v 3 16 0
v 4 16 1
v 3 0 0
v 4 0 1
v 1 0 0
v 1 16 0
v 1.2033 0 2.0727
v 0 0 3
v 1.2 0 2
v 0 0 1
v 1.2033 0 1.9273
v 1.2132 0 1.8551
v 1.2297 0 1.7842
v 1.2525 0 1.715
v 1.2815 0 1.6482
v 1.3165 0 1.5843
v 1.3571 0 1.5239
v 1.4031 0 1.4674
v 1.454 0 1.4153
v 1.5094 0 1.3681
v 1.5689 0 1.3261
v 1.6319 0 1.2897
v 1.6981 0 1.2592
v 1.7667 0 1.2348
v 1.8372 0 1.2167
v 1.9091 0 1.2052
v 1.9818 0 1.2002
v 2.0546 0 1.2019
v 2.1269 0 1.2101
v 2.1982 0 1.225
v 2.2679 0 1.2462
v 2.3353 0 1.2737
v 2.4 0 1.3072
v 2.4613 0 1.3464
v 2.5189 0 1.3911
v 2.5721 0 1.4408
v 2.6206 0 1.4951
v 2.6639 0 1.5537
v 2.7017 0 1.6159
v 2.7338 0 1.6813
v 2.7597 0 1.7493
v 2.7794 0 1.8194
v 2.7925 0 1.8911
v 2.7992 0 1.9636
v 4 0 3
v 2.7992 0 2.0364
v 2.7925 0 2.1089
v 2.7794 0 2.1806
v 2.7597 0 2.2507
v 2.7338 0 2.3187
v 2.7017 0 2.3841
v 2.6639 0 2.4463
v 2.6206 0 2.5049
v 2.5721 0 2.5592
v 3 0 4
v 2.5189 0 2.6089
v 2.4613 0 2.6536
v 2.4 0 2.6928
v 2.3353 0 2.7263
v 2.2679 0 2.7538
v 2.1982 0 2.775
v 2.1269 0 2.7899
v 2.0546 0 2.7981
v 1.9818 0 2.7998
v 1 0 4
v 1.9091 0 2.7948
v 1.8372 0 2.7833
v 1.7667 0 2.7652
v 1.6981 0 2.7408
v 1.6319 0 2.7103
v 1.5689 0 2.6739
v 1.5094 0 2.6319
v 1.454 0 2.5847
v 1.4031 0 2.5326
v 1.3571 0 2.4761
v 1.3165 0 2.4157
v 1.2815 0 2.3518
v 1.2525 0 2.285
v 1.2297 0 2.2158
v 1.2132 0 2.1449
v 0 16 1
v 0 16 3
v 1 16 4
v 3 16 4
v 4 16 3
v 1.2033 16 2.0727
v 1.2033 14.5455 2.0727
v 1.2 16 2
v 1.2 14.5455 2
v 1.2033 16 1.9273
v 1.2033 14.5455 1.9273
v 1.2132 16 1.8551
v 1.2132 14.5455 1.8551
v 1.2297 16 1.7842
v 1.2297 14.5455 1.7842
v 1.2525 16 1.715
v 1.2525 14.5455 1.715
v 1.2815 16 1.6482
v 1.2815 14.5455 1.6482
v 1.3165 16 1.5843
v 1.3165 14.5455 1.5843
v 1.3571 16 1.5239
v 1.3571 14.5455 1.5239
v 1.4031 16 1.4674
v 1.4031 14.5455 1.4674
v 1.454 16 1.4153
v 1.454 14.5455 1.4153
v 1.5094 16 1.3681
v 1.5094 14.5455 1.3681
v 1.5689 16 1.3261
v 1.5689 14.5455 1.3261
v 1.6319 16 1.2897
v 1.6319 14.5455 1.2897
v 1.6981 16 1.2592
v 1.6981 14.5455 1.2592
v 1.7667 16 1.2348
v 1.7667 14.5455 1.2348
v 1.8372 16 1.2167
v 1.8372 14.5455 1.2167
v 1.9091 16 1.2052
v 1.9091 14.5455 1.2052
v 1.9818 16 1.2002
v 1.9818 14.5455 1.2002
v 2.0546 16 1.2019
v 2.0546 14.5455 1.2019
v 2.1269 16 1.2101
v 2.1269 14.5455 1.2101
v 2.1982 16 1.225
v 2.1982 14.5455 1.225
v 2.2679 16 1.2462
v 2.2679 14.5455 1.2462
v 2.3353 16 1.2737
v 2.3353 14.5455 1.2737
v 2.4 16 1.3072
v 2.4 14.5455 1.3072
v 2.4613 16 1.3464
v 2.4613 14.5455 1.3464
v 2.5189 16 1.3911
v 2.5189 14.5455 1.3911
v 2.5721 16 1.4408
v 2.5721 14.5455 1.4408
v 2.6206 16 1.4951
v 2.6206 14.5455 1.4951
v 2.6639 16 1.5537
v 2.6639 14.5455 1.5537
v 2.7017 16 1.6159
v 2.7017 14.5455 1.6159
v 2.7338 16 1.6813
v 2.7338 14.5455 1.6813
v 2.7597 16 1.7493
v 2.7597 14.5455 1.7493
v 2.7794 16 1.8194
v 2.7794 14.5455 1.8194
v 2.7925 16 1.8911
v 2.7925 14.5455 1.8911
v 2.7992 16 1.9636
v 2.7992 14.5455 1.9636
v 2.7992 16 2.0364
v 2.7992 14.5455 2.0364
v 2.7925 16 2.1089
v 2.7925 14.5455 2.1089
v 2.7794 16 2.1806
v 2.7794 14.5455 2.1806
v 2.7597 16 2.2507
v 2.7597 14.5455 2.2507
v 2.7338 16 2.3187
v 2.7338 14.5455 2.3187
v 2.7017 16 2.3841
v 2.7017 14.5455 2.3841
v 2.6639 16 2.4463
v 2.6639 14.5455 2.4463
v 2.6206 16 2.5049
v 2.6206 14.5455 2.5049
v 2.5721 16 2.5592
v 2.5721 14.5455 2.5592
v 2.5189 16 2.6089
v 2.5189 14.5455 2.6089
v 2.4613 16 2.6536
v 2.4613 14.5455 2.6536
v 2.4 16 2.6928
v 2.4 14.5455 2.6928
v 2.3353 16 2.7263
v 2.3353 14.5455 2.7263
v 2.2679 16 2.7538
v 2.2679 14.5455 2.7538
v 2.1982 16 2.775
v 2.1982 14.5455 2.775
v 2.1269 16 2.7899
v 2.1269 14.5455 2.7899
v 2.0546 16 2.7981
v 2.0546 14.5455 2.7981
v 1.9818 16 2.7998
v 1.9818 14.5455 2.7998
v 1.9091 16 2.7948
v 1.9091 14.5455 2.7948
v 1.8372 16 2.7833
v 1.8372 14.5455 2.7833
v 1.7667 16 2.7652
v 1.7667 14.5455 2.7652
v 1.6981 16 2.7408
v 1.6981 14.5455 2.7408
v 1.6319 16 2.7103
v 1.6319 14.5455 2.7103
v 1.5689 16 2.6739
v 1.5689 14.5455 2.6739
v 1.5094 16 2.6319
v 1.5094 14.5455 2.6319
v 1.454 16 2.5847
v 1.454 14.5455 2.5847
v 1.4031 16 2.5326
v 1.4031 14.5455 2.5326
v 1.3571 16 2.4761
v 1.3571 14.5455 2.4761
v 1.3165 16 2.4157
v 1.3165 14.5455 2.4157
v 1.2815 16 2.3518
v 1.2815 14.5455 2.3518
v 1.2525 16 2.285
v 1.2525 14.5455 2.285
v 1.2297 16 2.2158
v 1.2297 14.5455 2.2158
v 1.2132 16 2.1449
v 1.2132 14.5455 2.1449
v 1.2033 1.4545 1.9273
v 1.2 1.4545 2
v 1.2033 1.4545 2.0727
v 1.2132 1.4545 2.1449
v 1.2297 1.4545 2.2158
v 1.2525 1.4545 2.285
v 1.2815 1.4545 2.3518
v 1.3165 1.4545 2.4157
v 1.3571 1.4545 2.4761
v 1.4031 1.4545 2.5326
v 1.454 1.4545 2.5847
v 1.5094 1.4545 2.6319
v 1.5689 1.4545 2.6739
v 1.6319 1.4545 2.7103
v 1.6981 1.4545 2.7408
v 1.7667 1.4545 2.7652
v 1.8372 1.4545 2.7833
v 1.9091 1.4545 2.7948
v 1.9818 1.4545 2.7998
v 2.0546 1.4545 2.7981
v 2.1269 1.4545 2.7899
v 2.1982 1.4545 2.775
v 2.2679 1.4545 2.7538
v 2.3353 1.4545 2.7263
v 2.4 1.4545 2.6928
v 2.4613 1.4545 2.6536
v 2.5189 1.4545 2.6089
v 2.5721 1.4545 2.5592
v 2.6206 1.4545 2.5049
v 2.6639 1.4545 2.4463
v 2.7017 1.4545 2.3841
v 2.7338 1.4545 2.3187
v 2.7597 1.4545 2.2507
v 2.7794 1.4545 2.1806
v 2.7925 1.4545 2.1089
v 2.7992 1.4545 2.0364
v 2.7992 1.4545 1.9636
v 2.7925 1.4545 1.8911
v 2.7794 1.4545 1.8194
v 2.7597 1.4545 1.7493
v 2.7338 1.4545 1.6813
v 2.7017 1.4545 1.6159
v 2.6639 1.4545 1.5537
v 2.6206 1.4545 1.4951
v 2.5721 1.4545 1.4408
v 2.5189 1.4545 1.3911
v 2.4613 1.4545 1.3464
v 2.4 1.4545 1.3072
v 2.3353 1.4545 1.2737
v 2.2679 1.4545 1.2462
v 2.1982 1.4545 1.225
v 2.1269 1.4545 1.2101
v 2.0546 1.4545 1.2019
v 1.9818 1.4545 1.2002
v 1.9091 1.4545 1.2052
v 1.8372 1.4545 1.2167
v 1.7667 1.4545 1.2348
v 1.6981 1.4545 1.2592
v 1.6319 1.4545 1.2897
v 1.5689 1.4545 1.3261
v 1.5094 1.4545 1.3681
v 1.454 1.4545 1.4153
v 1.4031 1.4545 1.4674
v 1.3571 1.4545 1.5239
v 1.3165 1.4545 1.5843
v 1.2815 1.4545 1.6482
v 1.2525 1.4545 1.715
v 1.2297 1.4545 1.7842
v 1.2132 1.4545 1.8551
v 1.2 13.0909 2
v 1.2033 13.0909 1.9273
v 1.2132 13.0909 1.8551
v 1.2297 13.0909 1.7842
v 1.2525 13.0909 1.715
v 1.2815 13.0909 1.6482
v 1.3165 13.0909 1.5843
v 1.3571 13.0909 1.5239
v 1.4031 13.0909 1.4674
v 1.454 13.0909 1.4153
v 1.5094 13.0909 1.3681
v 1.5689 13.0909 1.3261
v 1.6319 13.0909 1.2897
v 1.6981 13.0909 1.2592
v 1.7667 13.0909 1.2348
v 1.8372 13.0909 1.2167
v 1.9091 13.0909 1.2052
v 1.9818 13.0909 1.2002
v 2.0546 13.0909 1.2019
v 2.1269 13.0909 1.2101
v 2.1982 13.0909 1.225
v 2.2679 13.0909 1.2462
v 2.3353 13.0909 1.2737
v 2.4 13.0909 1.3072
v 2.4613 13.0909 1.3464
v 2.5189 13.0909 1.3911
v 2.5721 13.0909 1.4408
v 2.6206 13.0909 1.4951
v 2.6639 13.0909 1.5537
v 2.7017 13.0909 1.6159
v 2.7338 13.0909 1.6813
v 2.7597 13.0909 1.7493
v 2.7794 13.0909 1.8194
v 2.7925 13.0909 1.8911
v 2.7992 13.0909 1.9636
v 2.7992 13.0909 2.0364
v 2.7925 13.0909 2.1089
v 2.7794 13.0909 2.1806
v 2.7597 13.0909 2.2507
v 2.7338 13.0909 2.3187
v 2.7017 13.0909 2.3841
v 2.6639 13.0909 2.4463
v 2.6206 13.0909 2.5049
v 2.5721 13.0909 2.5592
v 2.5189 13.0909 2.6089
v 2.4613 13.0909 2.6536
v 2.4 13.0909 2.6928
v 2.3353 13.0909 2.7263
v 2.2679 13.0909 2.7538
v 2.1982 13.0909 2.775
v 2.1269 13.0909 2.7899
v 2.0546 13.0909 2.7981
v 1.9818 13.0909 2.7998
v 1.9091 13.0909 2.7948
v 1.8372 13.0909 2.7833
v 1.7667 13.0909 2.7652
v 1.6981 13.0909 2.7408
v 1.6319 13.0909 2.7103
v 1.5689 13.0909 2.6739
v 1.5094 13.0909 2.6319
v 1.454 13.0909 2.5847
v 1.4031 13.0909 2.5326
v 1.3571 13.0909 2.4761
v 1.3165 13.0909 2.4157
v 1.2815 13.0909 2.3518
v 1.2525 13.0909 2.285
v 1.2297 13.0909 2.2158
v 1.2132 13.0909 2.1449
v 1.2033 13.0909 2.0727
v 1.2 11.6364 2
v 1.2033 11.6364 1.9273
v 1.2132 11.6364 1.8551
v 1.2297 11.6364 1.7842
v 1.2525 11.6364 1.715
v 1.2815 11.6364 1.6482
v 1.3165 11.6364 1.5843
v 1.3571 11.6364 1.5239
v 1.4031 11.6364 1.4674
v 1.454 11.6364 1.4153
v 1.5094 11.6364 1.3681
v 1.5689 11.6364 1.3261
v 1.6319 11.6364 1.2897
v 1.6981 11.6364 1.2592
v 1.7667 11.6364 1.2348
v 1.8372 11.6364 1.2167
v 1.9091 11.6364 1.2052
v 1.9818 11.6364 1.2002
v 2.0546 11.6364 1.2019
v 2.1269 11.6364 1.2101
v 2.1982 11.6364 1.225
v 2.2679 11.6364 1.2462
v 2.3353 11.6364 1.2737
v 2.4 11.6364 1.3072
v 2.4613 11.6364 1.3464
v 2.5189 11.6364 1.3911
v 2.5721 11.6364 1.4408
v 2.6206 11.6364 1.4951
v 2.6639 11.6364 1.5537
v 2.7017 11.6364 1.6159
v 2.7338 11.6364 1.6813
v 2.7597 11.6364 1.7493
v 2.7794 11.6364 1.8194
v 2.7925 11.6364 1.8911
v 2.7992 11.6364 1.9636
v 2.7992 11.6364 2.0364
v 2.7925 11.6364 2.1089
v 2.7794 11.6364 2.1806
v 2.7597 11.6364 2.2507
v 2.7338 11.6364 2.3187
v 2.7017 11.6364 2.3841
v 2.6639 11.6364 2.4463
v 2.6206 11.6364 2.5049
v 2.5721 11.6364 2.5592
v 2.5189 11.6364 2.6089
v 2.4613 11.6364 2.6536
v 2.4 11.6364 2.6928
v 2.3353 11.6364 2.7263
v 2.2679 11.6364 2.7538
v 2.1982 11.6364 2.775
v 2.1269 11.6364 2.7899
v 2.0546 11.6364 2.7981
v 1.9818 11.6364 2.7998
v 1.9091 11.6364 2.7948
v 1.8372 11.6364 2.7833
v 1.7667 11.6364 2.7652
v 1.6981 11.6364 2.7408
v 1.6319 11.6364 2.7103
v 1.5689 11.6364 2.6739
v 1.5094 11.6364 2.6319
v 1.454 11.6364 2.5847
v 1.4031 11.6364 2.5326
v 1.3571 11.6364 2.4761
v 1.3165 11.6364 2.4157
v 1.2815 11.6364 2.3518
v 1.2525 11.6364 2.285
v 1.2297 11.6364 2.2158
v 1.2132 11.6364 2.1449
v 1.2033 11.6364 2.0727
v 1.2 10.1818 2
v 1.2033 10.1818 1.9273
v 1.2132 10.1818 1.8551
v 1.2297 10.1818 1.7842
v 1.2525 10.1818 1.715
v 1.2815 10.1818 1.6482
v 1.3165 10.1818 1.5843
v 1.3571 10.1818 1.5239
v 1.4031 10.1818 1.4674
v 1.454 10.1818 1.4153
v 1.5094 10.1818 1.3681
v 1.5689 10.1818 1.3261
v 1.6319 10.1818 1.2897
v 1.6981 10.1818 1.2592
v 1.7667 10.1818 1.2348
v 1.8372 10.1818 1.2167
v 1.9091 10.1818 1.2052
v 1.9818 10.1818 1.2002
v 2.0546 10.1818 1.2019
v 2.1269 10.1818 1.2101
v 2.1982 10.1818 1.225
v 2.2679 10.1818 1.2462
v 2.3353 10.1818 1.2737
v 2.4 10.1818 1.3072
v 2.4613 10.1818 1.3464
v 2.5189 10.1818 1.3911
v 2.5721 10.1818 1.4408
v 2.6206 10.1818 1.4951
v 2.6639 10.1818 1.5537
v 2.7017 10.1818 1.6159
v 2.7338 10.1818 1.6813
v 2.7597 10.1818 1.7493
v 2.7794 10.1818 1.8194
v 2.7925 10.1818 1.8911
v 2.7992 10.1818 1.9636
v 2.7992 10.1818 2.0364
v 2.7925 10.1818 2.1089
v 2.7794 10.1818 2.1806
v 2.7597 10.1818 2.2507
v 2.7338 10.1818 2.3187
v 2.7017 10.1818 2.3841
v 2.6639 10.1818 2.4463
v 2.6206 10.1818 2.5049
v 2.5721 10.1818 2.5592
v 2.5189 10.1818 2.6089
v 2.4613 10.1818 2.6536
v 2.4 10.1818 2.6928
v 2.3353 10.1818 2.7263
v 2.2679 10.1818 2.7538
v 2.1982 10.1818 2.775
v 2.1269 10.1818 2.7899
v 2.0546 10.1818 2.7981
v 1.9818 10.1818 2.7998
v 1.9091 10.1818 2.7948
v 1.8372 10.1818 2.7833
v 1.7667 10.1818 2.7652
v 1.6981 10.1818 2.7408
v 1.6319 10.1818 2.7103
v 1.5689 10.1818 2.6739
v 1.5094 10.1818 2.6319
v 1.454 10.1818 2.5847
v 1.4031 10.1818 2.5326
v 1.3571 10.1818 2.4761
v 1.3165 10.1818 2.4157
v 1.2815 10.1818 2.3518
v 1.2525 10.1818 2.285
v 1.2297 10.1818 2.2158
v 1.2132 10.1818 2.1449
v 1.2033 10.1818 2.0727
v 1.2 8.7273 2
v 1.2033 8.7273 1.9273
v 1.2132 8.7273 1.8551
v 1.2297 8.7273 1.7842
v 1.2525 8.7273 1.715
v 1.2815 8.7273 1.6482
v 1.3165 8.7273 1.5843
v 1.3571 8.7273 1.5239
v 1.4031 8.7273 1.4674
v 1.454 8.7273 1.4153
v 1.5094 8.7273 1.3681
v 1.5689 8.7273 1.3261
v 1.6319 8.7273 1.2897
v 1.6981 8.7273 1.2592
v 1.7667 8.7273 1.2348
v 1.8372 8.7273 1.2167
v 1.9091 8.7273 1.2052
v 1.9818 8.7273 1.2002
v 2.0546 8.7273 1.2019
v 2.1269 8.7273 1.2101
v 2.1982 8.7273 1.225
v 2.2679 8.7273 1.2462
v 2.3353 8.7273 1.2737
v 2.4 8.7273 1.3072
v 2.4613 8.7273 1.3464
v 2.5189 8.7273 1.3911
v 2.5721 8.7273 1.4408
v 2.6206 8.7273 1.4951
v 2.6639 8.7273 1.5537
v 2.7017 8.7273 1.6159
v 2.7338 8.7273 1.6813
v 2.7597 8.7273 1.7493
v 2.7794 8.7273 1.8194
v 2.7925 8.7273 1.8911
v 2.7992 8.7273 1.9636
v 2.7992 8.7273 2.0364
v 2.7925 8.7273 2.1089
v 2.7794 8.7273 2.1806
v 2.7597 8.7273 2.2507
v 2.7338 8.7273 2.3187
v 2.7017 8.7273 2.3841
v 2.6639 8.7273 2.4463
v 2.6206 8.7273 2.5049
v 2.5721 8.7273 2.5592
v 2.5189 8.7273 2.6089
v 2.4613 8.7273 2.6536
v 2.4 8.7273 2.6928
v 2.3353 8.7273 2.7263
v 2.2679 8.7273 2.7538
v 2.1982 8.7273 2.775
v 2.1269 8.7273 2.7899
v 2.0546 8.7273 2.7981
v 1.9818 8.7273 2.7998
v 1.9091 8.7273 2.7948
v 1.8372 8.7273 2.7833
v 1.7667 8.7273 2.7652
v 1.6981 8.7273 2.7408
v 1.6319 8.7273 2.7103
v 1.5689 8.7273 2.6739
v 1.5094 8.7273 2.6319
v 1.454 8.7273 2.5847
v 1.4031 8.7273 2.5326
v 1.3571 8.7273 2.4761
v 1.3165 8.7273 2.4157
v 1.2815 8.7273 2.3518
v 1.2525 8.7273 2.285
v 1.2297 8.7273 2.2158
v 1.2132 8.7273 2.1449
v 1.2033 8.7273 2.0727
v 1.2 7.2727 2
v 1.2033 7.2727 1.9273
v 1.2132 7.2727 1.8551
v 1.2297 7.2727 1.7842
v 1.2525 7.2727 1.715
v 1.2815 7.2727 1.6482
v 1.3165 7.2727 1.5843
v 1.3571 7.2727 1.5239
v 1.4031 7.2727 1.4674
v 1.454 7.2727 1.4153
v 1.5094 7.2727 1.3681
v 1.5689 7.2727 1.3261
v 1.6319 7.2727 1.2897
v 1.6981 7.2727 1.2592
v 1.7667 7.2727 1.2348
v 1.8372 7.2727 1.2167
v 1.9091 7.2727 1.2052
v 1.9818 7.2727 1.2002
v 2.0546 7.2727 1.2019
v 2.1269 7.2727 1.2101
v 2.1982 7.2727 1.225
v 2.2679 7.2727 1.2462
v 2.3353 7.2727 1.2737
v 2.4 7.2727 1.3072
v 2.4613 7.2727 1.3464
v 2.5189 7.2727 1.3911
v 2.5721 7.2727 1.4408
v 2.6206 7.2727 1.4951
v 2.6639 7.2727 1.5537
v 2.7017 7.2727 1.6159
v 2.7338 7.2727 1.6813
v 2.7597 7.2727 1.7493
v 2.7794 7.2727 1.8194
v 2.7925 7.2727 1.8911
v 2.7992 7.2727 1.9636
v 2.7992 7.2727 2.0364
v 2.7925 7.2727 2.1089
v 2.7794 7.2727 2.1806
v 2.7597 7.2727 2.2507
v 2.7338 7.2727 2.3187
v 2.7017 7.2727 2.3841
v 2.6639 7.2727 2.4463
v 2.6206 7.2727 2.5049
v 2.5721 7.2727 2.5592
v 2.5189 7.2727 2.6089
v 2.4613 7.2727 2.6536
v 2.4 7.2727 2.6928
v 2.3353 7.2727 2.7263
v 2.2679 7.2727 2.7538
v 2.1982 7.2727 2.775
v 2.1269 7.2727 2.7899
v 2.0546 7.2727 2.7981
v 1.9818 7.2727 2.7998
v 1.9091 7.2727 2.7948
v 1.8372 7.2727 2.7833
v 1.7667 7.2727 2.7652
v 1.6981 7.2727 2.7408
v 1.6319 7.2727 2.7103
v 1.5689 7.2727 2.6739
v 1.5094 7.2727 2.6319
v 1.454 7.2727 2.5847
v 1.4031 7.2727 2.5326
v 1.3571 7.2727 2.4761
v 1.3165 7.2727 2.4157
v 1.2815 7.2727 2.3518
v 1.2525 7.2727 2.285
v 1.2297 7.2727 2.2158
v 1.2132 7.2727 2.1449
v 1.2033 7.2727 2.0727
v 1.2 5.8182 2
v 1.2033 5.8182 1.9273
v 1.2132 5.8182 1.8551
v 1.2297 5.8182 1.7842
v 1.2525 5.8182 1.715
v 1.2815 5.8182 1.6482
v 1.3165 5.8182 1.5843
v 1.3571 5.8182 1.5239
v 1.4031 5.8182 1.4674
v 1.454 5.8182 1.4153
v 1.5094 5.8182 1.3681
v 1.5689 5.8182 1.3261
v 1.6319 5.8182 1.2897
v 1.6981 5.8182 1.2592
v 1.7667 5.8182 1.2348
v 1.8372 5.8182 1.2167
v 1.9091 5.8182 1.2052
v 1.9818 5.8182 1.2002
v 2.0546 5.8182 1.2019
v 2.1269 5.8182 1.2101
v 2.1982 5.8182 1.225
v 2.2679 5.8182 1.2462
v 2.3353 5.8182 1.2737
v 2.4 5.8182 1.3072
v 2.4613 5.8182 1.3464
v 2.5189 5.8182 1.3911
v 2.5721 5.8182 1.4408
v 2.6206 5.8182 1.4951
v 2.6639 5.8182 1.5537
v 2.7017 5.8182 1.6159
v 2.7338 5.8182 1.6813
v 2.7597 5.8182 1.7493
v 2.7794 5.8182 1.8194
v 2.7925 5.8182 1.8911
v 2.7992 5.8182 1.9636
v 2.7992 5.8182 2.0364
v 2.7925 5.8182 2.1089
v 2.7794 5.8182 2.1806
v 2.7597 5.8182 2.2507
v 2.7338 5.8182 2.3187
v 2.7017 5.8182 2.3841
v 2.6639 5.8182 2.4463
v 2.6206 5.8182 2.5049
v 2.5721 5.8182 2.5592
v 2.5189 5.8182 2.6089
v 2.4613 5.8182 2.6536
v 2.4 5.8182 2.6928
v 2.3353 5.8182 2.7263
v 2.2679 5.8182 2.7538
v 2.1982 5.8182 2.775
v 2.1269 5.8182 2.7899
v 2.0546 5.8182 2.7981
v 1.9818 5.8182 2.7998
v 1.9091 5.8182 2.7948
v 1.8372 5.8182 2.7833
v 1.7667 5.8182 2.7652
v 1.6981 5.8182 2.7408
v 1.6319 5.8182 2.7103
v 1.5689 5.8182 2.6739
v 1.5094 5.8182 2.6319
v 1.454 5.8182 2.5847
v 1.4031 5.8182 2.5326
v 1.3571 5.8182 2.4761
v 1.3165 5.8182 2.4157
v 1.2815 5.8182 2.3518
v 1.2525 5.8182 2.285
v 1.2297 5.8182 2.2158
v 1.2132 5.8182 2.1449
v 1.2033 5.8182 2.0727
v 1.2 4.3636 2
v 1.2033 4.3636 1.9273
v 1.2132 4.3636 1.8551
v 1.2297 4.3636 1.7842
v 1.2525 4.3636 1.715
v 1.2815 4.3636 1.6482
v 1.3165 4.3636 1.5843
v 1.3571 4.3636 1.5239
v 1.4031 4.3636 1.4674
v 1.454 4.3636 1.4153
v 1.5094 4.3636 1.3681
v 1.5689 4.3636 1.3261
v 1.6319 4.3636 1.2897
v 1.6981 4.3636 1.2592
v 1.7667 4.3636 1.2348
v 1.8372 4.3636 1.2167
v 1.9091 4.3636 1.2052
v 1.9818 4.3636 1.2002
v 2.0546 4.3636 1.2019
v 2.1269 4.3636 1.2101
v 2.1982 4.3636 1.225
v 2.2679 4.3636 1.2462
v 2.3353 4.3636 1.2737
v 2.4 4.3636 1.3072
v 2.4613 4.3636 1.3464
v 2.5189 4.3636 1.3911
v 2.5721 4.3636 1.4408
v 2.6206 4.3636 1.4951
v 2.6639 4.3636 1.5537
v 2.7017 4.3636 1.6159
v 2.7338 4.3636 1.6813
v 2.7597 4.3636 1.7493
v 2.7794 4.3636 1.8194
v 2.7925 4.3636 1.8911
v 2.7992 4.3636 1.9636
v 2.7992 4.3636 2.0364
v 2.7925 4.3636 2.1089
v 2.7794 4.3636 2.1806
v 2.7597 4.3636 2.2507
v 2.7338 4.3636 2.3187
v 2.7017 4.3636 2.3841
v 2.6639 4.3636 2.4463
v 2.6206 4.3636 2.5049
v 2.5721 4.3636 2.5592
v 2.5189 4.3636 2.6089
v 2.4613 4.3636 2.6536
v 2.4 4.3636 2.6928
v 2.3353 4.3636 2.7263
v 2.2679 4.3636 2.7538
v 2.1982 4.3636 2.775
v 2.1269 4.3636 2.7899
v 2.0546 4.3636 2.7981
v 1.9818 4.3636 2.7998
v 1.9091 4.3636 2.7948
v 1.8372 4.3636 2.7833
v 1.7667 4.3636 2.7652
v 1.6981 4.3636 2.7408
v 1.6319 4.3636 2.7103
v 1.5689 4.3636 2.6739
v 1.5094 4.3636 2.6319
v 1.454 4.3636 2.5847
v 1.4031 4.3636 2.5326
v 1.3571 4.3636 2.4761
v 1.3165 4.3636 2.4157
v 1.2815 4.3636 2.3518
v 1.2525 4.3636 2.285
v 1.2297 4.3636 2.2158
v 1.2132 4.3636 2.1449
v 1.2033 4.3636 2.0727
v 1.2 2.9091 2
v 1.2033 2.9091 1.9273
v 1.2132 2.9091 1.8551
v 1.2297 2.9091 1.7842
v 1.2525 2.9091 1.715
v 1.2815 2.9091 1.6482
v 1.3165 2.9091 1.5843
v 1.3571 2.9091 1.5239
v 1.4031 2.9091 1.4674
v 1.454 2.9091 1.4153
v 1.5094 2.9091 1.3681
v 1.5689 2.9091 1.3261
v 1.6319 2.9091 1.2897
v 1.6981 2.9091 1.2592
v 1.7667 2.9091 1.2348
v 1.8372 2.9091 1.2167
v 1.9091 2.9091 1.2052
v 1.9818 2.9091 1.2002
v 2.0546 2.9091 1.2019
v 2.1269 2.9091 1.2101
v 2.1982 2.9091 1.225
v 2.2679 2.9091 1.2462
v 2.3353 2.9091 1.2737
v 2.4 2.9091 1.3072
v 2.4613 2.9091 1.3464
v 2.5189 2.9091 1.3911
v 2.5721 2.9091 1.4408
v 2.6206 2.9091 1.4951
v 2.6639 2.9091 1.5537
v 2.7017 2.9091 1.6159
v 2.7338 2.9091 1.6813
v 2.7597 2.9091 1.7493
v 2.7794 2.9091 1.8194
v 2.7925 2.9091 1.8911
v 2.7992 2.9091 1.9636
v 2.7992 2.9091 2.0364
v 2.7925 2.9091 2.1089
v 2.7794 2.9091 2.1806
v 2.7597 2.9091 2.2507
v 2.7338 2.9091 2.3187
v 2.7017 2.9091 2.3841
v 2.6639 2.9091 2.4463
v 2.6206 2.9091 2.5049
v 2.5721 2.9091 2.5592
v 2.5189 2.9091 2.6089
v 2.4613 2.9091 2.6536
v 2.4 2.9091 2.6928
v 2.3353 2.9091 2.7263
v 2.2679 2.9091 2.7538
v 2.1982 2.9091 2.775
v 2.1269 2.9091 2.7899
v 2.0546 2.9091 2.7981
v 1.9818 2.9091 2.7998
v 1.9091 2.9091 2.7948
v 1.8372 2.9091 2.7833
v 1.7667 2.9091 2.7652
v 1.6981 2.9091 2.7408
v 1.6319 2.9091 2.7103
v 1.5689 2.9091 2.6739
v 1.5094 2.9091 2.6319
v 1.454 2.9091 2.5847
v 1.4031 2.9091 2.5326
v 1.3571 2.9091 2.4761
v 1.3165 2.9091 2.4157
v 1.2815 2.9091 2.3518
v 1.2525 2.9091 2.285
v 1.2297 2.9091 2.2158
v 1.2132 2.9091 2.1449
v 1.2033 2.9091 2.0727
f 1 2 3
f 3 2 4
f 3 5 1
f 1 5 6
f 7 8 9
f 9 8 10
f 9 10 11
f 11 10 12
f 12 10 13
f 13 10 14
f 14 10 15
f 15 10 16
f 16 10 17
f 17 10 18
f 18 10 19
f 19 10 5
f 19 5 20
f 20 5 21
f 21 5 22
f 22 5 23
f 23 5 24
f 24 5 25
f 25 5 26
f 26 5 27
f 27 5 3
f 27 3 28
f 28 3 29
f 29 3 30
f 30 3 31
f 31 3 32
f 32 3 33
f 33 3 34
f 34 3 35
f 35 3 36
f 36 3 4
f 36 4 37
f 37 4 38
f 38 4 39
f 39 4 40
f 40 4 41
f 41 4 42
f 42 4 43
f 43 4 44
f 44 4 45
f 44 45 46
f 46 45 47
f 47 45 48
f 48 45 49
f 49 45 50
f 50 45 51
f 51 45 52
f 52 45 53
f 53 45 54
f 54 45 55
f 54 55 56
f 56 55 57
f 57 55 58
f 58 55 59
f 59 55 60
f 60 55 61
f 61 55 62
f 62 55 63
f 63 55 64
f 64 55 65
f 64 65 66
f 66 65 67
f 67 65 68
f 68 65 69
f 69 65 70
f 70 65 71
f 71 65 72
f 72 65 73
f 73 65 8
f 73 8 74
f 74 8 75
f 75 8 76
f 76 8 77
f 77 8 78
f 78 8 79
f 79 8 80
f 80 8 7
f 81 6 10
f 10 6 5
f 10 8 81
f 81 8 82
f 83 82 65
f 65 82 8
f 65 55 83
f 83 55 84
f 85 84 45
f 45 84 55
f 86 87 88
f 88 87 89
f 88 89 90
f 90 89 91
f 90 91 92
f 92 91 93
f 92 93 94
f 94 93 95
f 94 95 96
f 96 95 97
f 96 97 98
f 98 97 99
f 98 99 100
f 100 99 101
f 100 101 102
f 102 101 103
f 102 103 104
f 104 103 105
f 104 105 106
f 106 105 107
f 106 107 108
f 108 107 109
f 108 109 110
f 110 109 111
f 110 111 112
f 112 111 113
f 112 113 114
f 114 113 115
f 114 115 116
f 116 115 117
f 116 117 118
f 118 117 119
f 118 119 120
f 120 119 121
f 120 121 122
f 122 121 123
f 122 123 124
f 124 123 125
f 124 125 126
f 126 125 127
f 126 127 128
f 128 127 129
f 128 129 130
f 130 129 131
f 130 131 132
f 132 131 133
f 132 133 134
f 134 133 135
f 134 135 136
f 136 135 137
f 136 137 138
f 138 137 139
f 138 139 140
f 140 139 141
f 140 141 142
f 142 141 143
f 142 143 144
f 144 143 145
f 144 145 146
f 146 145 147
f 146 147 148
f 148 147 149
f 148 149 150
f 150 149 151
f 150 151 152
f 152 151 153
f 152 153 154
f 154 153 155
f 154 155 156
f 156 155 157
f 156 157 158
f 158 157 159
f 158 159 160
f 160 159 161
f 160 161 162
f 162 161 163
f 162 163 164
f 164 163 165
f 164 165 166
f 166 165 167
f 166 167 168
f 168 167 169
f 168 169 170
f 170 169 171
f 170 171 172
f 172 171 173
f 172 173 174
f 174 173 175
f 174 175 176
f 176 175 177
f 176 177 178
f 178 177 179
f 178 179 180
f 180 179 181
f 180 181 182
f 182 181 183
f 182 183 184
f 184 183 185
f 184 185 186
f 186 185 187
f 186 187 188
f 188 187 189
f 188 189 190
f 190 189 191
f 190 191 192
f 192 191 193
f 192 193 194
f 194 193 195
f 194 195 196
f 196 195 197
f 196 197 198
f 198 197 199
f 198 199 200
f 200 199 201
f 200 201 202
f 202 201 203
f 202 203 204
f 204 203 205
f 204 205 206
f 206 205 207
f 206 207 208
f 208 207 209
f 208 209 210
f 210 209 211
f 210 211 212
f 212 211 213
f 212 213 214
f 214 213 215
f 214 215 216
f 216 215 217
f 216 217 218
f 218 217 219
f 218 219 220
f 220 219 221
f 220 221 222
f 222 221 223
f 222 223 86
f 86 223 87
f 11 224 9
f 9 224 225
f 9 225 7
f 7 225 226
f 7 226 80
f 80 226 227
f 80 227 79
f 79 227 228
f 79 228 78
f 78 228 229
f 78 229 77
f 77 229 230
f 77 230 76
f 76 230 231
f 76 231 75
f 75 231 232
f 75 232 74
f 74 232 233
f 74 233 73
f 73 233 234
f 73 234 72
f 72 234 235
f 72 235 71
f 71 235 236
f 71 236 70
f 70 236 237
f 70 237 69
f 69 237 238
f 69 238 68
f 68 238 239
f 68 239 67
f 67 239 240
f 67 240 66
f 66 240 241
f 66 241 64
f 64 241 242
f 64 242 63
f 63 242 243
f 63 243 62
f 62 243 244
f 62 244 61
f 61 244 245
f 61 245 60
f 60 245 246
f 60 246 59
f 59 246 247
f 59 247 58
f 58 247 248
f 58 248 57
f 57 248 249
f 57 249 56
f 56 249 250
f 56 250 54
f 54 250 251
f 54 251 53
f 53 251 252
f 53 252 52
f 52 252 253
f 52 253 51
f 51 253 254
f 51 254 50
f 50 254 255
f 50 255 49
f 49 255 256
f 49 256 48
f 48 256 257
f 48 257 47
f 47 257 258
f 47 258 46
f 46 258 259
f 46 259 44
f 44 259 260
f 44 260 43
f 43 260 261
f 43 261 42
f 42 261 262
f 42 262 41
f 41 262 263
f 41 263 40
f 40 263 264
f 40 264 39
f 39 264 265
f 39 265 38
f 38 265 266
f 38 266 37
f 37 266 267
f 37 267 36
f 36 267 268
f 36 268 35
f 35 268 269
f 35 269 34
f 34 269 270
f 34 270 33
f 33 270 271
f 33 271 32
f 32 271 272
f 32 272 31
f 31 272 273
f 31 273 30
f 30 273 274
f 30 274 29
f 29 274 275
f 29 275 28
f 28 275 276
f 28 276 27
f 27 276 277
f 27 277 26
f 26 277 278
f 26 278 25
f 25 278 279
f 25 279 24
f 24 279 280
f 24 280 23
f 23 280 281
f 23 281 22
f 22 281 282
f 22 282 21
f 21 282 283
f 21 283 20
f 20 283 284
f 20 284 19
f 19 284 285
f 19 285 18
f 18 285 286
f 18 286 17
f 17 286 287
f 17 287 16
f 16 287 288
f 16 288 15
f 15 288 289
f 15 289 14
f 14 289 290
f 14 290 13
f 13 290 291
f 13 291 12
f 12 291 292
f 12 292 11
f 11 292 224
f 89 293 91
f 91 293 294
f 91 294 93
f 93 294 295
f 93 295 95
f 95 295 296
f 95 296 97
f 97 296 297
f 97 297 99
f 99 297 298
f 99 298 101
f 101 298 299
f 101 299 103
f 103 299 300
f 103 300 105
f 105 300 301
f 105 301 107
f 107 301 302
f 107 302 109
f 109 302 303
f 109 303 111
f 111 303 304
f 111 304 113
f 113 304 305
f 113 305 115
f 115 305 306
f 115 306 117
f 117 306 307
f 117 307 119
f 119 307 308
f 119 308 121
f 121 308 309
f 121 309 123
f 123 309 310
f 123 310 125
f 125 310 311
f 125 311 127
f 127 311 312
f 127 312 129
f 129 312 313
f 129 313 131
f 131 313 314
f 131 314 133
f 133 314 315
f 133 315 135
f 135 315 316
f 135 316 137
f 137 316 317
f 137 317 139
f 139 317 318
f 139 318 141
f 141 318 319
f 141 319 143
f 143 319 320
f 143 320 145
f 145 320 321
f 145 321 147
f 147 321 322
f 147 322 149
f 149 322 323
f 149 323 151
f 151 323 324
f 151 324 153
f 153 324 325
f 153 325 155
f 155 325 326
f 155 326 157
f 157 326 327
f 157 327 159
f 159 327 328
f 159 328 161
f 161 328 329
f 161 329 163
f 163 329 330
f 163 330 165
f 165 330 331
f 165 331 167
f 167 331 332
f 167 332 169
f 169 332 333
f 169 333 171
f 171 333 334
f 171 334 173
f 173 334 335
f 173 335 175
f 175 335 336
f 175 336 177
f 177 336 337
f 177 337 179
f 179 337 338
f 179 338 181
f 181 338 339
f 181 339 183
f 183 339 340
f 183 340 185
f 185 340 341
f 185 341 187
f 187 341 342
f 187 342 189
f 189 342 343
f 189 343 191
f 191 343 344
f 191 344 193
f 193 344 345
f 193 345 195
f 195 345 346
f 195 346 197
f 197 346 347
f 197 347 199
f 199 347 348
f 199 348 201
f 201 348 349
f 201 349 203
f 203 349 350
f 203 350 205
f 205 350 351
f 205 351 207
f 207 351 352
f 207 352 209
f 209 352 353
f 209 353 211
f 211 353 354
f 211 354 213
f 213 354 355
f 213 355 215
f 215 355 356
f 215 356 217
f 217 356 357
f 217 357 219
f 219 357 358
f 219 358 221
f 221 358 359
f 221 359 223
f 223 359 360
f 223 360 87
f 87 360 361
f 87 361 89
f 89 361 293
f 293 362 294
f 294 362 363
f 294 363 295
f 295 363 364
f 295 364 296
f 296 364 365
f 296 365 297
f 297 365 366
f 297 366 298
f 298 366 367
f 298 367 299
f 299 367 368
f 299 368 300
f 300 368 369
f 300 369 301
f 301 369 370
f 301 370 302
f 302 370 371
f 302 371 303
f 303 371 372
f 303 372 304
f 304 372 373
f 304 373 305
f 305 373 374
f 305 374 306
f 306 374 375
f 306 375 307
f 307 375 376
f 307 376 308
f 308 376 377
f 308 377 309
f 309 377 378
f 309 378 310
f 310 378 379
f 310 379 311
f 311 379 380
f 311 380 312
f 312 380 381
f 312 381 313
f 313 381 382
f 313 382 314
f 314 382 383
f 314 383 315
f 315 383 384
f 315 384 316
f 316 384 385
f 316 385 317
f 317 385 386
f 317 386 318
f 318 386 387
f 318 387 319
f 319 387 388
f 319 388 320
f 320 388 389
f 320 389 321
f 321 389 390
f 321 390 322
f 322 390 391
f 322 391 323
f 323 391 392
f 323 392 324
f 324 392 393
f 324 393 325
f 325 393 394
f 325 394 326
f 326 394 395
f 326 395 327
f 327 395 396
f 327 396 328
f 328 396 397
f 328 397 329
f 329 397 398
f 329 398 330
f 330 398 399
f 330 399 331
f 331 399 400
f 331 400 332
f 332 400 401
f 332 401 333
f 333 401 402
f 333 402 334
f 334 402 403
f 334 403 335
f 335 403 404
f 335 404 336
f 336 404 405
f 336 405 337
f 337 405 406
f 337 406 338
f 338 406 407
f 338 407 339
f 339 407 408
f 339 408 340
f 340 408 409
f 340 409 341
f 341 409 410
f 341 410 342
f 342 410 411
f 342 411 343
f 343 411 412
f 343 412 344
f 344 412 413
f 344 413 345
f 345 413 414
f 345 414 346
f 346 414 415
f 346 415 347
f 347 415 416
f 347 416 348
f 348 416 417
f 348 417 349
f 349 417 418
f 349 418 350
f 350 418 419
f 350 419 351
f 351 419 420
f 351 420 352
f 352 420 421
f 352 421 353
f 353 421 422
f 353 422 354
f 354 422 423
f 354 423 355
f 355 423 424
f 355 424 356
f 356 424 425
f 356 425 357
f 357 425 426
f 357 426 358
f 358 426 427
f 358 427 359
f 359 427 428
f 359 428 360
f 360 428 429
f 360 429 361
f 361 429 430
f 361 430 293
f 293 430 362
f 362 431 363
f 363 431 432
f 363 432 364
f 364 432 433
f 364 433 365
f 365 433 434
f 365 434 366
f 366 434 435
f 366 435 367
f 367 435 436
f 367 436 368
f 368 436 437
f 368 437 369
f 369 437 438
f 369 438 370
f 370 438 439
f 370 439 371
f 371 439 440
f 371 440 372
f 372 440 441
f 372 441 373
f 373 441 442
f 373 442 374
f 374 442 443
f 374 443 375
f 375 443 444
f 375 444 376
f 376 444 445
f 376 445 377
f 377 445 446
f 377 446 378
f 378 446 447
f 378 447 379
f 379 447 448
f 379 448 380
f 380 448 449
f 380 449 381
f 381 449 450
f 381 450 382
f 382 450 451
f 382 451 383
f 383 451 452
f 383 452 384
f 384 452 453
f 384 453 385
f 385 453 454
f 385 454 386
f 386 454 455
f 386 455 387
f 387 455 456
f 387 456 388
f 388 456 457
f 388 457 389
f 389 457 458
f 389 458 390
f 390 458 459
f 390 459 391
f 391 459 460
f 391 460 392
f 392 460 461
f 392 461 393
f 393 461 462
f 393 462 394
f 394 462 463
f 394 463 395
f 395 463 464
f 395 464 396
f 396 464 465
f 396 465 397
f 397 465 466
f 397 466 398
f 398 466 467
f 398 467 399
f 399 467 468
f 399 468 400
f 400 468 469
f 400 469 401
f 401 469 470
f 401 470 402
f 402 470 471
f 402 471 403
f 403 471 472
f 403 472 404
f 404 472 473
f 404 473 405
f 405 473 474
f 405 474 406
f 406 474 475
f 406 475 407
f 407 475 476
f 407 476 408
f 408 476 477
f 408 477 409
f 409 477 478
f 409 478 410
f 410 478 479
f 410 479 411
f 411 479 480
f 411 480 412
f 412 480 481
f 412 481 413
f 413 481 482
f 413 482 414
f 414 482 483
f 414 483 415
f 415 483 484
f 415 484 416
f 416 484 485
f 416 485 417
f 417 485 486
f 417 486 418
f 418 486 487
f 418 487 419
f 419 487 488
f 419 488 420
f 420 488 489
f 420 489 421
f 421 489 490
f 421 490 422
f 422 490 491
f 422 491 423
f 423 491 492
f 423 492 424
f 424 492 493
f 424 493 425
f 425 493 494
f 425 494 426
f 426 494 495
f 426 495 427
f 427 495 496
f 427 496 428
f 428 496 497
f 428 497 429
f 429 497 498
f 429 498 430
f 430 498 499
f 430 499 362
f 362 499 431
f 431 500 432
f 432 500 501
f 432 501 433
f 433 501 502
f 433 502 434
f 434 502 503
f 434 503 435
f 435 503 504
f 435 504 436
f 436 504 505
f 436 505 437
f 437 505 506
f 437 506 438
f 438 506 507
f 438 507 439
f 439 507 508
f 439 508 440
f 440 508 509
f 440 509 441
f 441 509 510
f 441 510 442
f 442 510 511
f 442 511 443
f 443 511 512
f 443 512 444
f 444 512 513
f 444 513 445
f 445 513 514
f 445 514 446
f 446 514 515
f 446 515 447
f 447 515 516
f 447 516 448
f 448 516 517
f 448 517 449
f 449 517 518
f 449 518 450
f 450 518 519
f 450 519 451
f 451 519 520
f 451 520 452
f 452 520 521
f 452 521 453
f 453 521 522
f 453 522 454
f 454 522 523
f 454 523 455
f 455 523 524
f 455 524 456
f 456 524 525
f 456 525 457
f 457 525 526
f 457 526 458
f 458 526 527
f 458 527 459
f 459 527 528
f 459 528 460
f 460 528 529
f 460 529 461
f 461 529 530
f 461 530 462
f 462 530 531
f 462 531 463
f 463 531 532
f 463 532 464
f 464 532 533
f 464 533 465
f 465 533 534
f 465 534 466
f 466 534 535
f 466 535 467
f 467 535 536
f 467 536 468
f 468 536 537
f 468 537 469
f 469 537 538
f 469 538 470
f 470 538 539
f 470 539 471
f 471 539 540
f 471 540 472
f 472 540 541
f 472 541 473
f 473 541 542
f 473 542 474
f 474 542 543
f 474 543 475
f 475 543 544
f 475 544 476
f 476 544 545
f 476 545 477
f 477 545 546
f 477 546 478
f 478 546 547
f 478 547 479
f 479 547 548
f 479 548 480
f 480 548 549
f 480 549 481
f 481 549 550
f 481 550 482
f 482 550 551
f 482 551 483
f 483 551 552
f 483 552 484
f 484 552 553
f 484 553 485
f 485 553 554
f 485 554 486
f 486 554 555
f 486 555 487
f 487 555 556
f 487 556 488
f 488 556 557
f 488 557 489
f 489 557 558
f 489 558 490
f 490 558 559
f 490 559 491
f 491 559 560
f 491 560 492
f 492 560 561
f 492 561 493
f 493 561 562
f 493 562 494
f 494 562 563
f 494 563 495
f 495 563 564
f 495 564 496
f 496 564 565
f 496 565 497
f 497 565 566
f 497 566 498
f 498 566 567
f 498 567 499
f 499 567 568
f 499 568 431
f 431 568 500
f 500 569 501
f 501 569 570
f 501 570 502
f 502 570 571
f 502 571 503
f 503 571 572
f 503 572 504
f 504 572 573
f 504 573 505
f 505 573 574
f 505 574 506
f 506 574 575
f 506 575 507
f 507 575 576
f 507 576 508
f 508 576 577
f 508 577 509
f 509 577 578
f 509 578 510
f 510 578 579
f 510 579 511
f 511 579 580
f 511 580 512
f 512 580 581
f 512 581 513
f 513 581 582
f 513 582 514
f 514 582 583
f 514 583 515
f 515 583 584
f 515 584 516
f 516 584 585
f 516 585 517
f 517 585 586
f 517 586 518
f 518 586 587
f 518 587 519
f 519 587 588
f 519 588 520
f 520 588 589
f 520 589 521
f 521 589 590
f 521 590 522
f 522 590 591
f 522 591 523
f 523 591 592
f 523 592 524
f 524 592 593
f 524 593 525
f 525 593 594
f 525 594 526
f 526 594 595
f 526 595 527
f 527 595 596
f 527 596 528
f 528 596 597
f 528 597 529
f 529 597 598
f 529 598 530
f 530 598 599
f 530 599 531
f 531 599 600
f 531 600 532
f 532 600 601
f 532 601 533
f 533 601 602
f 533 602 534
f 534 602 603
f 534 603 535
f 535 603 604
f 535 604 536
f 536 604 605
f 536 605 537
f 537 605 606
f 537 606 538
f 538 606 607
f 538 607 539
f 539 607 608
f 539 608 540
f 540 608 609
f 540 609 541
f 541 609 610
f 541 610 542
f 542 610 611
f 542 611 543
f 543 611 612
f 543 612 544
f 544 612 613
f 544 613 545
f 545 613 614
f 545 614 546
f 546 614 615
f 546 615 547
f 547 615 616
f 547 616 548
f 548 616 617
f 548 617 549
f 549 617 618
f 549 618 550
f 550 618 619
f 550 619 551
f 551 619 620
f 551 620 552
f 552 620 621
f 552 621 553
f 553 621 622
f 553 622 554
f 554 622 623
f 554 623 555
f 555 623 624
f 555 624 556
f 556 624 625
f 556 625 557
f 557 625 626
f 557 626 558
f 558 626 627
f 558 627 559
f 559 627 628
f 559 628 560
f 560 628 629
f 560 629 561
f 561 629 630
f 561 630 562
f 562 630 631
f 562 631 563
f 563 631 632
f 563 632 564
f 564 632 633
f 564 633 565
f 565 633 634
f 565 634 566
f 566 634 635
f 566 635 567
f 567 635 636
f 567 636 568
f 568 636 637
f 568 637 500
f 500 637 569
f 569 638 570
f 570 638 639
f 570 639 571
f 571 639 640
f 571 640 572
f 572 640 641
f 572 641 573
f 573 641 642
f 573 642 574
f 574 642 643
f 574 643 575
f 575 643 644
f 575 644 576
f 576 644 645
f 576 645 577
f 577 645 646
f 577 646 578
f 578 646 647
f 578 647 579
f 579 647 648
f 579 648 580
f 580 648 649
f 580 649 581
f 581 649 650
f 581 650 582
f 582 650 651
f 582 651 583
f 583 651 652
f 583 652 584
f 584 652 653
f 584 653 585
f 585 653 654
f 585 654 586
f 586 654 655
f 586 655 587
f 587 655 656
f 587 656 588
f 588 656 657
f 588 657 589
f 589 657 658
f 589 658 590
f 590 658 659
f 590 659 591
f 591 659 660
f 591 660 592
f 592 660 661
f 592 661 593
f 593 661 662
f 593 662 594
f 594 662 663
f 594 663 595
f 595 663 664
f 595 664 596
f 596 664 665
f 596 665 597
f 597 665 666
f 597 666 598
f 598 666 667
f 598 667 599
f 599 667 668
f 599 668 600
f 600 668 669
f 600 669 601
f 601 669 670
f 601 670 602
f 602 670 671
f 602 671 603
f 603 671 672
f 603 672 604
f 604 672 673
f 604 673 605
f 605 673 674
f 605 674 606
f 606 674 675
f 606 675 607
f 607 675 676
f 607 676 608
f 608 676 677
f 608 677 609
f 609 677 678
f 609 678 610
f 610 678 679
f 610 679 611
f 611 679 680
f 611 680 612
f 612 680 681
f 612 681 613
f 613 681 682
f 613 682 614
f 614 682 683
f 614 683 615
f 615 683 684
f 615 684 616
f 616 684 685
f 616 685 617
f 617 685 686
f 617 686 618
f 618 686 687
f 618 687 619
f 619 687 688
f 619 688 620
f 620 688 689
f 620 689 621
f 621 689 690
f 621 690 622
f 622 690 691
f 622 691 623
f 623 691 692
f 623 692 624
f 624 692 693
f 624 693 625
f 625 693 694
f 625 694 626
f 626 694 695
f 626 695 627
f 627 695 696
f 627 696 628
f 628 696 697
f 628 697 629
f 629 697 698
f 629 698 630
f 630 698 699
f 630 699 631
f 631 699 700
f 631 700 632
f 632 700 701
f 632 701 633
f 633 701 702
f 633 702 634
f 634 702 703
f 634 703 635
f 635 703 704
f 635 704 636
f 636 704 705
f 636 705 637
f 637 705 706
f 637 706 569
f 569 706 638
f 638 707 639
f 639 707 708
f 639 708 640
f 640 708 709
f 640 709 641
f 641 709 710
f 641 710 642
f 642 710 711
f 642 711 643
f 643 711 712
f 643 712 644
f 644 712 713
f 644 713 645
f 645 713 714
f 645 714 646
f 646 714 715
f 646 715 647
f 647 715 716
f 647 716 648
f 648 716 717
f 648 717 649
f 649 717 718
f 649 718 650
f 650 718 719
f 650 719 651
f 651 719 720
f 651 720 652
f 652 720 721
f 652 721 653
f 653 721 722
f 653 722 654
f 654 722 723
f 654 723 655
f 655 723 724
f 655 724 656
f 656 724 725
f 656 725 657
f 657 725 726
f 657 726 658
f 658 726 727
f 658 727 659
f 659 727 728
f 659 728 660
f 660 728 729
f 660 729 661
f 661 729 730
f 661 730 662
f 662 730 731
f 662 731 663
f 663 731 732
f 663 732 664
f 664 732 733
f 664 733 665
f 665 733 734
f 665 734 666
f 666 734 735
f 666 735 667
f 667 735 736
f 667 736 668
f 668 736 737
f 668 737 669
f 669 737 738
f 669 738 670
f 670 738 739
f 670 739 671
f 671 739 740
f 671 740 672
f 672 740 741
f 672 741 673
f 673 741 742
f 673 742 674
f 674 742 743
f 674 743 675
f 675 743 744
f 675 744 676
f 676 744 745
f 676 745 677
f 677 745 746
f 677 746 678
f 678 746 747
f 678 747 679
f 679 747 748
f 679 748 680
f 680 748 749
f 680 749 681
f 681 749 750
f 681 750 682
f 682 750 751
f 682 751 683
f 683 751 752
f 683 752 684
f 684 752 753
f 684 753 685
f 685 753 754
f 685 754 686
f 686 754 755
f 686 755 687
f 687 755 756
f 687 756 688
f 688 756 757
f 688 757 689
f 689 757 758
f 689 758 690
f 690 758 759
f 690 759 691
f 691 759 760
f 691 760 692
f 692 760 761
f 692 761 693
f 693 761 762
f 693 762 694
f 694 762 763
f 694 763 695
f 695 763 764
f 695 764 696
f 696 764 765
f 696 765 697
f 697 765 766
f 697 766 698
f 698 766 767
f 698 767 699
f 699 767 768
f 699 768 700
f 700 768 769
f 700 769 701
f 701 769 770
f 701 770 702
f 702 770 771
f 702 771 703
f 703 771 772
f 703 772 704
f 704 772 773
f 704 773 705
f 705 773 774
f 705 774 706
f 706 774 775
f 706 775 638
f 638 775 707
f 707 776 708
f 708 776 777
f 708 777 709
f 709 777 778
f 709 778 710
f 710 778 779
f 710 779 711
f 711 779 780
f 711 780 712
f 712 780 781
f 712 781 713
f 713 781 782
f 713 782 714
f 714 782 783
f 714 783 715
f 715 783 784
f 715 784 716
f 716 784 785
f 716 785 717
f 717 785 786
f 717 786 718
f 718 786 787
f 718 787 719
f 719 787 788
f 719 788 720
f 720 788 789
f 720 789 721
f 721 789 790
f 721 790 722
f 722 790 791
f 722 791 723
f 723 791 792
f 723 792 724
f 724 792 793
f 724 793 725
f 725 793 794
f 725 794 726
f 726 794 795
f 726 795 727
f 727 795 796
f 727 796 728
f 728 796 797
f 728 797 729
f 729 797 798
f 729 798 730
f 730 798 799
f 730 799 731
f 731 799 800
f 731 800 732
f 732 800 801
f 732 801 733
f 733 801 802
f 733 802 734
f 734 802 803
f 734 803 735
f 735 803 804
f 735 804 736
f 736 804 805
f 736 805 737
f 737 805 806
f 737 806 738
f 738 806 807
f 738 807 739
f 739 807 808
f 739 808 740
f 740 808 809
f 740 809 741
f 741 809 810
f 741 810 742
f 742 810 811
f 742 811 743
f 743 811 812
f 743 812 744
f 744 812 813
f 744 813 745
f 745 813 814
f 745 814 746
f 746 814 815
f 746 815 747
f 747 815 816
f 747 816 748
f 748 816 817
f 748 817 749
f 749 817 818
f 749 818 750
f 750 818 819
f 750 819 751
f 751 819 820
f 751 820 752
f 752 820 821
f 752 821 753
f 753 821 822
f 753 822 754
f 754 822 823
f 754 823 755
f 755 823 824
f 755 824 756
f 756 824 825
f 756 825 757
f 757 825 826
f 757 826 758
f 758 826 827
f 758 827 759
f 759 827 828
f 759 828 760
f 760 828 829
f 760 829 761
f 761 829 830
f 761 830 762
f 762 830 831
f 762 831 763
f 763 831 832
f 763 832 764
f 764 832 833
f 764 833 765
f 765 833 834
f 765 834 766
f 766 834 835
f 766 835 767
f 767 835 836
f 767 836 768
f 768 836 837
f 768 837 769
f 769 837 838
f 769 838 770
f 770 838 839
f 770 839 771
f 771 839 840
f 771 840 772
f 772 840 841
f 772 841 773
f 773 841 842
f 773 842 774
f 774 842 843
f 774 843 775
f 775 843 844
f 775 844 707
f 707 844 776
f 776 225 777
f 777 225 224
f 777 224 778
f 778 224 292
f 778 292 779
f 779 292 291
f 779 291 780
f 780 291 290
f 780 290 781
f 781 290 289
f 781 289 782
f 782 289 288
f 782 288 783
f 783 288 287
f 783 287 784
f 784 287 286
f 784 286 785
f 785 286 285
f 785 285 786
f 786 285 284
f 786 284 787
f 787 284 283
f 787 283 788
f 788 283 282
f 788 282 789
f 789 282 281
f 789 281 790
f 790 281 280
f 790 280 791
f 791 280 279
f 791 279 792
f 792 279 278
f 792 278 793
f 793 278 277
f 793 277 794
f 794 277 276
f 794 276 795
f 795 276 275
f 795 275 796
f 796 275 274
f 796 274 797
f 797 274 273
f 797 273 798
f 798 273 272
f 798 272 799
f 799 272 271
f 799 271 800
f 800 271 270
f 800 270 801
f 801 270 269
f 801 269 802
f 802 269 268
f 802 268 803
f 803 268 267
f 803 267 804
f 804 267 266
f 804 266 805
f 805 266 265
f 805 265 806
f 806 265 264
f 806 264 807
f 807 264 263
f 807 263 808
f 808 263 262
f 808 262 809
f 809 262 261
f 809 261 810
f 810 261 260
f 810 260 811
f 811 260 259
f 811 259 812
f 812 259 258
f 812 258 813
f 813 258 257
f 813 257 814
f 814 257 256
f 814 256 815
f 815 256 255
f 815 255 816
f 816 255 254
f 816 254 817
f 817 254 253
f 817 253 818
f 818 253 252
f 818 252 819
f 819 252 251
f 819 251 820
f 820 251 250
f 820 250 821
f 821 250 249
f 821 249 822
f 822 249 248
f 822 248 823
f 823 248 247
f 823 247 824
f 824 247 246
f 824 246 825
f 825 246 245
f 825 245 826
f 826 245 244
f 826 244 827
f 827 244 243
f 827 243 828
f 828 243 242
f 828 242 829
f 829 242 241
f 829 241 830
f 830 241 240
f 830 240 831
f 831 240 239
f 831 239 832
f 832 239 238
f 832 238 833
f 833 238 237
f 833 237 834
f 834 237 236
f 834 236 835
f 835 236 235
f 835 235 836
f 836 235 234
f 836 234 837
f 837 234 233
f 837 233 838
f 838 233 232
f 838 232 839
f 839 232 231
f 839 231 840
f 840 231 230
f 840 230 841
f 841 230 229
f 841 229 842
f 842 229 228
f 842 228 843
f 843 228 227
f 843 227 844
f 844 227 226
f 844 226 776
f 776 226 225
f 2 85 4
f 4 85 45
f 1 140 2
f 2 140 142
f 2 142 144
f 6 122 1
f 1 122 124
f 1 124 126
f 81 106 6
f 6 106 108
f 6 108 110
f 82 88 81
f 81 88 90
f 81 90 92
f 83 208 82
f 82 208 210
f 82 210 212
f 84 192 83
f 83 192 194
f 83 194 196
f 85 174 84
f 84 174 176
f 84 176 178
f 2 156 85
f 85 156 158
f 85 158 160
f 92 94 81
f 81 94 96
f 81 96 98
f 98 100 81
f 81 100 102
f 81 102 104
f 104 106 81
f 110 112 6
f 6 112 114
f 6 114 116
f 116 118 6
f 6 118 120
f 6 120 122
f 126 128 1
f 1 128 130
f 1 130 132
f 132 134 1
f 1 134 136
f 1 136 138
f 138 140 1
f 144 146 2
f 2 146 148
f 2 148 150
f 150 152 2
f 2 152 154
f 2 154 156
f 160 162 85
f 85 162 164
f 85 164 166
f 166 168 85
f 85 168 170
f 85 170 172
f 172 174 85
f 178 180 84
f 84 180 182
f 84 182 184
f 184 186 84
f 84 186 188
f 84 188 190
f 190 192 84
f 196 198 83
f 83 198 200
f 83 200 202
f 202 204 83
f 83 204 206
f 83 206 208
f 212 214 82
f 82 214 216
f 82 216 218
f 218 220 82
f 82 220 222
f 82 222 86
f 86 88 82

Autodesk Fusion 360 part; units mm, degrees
sketch "Sketch1" plane through (0, 0, 0) normal (0, 1, 0) x (1, 0, 0)
  line L0 (0, 0) -> (4, 0)
  line L1 (4, 0) -> (4, -4)
  line L2 (4, -4) -> (0, -4)
  line L3 (0, -4) -> (0, 0)
  circle A0 centre (2, -2) radius 0.8
  dimension "d1" = 4
  dimension "d2" = 4
  dimension "BORE" = 1.6
  dimension "d4" = 2
  dimension "d5" = 2
extrude "Extrude1" add sketch "Sketch1" along normal blind 16
chamfer "Chamfer1" distance 1 angle 45 4 edges at (4, 8, 4) (0, 8, 4) (0, 8, 0) (4, 8, 0)
